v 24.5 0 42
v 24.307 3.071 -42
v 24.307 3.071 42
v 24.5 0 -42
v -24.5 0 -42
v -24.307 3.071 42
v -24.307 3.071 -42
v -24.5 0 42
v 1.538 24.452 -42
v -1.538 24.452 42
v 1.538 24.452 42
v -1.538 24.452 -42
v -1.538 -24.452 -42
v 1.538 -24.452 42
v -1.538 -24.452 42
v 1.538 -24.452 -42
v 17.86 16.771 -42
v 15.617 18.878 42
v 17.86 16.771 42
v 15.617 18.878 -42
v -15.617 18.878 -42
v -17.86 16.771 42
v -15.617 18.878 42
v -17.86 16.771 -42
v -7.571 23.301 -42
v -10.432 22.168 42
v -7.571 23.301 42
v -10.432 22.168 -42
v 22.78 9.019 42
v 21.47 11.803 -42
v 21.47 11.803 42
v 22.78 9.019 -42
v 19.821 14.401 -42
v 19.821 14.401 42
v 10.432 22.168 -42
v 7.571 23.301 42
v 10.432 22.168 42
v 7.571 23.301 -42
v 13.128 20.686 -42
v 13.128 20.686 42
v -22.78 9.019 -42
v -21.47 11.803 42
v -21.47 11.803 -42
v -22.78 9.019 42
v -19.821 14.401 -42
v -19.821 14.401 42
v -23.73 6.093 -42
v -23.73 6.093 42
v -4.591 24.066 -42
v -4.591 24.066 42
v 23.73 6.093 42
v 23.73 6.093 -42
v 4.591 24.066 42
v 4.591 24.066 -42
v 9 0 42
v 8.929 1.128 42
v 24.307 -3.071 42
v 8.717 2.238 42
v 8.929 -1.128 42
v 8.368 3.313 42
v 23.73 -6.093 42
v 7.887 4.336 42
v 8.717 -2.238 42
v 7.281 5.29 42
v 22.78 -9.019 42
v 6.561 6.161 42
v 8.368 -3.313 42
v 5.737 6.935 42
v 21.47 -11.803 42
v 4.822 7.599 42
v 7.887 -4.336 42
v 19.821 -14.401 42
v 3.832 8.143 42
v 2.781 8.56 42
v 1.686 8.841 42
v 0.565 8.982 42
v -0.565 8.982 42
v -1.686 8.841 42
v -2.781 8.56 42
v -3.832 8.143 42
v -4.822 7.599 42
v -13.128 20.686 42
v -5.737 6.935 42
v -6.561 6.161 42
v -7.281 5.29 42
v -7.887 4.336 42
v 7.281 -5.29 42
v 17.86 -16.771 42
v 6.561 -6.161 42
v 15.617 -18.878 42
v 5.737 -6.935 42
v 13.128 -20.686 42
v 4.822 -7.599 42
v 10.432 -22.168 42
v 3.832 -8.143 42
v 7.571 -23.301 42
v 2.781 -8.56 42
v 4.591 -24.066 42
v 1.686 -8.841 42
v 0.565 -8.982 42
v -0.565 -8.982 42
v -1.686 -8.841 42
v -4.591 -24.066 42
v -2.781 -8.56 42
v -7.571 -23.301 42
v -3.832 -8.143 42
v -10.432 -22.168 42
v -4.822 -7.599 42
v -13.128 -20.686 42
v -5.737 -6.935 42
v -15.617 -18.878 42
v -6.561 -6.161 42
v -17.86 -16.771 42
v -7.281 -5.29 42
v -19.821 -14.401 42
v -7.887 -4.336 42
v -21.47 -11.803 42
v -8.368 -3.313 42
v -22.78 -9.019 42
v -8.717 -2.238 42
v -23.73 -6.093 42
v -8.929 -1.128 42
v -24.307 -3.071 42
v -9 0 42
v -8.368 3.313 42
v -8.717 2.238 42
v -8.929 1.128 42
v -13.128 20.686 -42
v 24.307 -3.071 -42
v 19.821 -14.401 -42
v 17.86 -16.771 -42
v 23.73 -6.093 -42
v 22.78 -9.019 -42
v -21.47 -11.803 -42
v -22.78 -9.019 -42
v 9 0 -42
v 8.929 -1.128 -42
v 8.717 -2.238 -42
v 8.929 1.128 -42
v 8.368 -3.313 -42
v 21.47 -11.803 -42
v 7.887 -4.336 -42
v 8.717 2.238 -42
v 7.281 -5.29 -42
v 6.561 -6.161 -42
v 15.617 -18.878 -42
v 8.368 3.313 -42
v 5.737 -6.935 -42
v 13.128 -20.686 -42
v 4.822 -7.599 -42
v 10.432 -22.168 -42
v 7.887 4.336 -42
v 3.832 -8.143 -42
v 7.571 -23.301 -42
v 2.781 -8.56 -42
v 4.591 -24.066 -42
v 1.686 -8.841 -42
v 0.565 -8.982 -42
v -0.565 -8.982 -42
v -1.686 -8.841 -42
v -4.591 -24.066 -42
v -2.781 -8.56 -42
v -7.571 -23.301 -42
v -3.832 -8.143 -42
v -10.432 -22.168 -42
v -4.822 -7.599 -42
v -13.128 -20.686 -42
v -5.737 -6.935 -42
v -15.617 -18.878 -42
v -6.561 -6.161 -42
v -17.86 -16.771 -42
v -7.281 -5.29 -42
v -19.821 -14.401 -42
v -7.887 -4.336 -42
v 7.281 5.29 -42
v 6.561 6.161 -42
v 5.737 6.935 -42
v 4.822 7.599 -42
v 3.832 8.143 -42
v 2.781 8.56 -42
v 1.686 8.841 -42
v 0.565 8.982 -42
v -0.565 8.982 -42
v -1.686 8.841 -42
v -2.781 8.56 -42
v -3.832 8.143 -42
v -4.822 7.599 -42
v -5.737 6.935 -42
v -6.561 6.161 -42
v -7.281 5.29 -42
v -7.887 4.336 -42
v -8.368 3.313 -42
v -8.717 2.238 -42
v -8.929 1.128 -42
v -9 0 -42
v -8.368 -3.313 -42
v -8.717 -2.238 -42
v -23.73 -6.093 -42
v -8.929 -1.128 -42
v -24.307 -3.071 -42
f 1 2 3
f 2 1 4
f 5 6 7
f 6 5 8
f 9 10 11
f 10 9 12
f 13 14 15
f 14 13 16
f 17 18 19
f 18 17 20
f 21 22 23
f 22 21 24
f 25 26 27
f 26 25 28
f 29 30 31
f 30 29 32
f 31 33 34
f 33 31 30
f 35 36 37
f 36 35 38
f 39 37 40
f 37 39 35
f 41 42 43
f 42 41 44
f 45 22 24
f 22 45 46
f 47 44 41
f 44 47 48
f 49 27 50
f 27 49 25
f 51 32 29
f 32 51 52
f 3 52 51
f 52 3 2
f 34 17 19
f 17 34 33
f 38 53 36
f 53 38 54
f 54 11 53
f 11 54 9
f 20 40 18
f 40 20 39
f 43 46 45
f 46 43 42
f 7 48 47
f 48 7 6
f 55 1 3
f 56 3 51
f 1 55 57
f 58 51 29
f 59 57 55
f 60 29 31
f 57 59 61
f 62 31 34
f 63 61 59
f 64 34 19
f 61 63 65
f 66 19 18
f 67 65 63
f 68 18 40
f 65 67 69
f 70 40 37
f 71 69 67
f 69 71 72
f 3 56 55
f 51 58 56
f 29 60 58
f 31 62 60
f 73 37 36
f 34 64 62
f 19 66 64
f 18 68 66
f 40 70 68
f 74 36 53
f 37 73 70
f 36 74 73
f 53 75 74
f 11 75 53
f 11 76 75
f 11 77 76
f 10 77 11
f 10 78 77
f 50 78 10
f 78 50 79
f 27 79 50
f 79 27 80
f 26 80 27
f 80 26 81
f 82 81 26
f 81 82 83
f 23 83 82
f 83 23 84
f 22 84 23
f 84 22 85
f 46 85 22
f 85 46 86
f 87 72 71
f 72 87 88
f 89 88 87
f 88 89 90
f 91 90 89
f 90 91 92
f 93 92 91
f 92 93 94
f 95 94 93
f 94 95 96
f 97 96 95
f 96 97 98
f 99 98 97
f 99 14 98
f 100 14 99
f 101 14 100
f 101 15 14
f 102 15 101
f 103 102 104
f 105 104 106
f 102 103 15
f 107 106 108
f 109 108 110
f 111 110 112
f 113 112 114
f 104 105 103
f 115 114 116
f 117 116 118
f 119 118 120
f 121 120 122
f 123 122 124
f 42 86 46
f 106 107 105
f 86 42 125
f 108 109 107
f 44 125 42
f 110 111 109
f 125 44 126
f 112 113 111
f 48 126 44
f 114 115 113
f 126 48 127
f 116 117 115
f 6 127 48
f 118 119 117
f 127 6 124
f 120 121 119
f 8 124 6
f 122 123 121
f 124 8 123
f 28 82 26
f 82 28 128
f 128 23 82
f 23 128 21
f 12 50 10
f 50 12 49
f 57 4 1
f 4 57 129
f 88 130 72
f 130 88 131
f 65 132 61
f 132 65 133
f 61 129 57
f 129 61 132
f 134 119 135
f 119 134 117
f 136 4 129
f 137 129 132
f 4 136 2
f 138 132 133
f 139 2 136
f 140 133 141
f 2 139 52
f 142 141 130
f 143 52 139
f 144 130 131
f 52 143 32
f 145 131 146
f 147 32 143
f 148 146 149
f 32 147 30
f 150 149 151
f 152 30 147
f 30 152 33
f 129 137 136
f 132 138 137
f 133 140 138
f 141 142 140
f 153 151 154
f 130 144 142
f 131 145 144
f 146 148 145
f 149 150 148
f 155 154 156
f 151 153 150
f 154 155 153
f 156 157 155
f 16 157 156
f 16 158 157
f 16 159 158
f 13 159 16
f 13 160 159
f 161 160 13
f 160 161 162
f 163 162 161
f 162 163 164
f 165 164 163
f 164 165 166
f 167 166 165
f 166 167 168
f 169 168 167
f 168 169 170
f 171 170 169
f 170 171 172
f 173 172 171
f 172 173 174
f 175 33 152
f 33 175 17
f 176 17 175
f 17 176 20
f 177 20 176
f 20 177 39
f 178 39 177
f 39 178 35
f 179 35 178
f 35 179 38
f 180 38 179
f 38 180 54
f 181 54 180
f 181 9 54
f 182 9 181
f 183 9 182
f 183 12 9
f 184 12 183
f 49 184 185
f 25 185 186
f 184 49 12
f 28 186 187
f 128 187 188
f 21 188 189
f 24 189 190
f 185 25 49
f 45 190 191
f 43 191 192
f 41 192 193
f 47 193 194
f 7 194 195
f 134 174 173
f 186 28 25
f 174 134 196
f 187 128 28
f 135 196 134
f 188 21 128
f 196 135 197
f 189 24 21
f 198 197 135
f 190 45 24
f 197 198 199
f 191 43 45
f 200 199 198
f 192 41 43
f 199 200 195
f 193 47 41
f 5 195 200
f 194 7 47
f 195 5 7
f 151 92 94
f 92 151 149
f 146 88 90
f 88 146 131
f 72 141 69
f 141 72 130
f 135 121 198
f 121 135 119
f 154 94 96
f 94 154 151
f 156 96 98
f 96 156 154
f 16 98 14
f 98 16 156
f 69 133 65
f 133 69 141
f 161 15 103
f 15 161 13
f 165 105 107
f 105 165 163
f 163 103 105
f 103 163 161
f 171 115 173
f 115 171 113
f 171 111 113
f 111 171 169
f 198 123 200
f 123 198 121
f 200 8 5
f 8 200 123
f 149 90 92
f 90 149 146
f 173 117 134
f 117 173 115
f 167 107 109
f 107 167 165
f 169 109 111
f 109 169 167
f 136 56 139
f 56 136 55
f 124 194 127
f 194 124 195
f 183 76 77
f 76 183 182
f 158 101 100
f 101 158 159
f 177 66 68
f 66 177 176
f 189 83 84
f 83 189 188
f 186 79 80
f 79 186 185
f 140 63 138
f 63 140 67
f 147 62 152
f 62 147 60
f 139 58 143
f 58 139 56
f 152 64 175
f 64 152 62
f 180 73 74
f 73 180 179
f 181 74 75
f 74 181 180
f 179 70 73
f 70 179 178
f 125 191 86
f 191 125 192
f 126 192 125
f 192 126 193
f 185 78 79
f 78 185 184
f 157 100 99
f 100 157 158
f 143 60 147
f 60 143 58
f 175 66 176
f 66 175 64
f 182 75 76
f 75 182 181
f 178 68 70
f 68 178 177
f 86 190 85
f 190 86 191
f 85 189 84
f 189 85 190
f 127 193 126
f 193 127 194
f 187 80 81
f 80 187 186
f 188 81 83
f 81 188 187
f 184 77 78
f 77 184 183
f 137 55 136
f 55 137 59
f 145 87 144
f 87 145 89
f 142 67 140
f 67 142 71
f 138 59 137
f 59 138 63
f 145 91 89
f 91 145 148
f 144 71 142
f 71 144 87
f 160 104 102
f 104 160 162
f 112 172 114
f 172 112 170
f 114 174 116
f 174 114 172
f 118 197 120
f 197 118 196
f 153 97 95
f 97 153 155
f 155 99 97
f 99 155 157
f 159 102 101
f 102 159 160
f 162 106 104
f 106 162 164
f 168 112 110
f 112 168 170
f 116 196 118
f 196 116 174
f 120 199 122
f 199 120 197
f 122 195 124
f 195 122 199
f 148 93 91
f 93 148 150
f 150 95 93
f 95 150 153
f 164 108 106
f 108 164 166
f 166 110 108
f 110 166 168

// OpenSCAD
$fn = 50;


difference() {
	union() {
		translate(v = [0, 0, -42.0000000000]) {
			cylinder(h = 84, r = 24.5000000000);
		}
	}
	union() {
		translate(v = [0, 0, -100.0000000000]) {
			cylinder(h = 200, r = 9);
		}
	}
}
